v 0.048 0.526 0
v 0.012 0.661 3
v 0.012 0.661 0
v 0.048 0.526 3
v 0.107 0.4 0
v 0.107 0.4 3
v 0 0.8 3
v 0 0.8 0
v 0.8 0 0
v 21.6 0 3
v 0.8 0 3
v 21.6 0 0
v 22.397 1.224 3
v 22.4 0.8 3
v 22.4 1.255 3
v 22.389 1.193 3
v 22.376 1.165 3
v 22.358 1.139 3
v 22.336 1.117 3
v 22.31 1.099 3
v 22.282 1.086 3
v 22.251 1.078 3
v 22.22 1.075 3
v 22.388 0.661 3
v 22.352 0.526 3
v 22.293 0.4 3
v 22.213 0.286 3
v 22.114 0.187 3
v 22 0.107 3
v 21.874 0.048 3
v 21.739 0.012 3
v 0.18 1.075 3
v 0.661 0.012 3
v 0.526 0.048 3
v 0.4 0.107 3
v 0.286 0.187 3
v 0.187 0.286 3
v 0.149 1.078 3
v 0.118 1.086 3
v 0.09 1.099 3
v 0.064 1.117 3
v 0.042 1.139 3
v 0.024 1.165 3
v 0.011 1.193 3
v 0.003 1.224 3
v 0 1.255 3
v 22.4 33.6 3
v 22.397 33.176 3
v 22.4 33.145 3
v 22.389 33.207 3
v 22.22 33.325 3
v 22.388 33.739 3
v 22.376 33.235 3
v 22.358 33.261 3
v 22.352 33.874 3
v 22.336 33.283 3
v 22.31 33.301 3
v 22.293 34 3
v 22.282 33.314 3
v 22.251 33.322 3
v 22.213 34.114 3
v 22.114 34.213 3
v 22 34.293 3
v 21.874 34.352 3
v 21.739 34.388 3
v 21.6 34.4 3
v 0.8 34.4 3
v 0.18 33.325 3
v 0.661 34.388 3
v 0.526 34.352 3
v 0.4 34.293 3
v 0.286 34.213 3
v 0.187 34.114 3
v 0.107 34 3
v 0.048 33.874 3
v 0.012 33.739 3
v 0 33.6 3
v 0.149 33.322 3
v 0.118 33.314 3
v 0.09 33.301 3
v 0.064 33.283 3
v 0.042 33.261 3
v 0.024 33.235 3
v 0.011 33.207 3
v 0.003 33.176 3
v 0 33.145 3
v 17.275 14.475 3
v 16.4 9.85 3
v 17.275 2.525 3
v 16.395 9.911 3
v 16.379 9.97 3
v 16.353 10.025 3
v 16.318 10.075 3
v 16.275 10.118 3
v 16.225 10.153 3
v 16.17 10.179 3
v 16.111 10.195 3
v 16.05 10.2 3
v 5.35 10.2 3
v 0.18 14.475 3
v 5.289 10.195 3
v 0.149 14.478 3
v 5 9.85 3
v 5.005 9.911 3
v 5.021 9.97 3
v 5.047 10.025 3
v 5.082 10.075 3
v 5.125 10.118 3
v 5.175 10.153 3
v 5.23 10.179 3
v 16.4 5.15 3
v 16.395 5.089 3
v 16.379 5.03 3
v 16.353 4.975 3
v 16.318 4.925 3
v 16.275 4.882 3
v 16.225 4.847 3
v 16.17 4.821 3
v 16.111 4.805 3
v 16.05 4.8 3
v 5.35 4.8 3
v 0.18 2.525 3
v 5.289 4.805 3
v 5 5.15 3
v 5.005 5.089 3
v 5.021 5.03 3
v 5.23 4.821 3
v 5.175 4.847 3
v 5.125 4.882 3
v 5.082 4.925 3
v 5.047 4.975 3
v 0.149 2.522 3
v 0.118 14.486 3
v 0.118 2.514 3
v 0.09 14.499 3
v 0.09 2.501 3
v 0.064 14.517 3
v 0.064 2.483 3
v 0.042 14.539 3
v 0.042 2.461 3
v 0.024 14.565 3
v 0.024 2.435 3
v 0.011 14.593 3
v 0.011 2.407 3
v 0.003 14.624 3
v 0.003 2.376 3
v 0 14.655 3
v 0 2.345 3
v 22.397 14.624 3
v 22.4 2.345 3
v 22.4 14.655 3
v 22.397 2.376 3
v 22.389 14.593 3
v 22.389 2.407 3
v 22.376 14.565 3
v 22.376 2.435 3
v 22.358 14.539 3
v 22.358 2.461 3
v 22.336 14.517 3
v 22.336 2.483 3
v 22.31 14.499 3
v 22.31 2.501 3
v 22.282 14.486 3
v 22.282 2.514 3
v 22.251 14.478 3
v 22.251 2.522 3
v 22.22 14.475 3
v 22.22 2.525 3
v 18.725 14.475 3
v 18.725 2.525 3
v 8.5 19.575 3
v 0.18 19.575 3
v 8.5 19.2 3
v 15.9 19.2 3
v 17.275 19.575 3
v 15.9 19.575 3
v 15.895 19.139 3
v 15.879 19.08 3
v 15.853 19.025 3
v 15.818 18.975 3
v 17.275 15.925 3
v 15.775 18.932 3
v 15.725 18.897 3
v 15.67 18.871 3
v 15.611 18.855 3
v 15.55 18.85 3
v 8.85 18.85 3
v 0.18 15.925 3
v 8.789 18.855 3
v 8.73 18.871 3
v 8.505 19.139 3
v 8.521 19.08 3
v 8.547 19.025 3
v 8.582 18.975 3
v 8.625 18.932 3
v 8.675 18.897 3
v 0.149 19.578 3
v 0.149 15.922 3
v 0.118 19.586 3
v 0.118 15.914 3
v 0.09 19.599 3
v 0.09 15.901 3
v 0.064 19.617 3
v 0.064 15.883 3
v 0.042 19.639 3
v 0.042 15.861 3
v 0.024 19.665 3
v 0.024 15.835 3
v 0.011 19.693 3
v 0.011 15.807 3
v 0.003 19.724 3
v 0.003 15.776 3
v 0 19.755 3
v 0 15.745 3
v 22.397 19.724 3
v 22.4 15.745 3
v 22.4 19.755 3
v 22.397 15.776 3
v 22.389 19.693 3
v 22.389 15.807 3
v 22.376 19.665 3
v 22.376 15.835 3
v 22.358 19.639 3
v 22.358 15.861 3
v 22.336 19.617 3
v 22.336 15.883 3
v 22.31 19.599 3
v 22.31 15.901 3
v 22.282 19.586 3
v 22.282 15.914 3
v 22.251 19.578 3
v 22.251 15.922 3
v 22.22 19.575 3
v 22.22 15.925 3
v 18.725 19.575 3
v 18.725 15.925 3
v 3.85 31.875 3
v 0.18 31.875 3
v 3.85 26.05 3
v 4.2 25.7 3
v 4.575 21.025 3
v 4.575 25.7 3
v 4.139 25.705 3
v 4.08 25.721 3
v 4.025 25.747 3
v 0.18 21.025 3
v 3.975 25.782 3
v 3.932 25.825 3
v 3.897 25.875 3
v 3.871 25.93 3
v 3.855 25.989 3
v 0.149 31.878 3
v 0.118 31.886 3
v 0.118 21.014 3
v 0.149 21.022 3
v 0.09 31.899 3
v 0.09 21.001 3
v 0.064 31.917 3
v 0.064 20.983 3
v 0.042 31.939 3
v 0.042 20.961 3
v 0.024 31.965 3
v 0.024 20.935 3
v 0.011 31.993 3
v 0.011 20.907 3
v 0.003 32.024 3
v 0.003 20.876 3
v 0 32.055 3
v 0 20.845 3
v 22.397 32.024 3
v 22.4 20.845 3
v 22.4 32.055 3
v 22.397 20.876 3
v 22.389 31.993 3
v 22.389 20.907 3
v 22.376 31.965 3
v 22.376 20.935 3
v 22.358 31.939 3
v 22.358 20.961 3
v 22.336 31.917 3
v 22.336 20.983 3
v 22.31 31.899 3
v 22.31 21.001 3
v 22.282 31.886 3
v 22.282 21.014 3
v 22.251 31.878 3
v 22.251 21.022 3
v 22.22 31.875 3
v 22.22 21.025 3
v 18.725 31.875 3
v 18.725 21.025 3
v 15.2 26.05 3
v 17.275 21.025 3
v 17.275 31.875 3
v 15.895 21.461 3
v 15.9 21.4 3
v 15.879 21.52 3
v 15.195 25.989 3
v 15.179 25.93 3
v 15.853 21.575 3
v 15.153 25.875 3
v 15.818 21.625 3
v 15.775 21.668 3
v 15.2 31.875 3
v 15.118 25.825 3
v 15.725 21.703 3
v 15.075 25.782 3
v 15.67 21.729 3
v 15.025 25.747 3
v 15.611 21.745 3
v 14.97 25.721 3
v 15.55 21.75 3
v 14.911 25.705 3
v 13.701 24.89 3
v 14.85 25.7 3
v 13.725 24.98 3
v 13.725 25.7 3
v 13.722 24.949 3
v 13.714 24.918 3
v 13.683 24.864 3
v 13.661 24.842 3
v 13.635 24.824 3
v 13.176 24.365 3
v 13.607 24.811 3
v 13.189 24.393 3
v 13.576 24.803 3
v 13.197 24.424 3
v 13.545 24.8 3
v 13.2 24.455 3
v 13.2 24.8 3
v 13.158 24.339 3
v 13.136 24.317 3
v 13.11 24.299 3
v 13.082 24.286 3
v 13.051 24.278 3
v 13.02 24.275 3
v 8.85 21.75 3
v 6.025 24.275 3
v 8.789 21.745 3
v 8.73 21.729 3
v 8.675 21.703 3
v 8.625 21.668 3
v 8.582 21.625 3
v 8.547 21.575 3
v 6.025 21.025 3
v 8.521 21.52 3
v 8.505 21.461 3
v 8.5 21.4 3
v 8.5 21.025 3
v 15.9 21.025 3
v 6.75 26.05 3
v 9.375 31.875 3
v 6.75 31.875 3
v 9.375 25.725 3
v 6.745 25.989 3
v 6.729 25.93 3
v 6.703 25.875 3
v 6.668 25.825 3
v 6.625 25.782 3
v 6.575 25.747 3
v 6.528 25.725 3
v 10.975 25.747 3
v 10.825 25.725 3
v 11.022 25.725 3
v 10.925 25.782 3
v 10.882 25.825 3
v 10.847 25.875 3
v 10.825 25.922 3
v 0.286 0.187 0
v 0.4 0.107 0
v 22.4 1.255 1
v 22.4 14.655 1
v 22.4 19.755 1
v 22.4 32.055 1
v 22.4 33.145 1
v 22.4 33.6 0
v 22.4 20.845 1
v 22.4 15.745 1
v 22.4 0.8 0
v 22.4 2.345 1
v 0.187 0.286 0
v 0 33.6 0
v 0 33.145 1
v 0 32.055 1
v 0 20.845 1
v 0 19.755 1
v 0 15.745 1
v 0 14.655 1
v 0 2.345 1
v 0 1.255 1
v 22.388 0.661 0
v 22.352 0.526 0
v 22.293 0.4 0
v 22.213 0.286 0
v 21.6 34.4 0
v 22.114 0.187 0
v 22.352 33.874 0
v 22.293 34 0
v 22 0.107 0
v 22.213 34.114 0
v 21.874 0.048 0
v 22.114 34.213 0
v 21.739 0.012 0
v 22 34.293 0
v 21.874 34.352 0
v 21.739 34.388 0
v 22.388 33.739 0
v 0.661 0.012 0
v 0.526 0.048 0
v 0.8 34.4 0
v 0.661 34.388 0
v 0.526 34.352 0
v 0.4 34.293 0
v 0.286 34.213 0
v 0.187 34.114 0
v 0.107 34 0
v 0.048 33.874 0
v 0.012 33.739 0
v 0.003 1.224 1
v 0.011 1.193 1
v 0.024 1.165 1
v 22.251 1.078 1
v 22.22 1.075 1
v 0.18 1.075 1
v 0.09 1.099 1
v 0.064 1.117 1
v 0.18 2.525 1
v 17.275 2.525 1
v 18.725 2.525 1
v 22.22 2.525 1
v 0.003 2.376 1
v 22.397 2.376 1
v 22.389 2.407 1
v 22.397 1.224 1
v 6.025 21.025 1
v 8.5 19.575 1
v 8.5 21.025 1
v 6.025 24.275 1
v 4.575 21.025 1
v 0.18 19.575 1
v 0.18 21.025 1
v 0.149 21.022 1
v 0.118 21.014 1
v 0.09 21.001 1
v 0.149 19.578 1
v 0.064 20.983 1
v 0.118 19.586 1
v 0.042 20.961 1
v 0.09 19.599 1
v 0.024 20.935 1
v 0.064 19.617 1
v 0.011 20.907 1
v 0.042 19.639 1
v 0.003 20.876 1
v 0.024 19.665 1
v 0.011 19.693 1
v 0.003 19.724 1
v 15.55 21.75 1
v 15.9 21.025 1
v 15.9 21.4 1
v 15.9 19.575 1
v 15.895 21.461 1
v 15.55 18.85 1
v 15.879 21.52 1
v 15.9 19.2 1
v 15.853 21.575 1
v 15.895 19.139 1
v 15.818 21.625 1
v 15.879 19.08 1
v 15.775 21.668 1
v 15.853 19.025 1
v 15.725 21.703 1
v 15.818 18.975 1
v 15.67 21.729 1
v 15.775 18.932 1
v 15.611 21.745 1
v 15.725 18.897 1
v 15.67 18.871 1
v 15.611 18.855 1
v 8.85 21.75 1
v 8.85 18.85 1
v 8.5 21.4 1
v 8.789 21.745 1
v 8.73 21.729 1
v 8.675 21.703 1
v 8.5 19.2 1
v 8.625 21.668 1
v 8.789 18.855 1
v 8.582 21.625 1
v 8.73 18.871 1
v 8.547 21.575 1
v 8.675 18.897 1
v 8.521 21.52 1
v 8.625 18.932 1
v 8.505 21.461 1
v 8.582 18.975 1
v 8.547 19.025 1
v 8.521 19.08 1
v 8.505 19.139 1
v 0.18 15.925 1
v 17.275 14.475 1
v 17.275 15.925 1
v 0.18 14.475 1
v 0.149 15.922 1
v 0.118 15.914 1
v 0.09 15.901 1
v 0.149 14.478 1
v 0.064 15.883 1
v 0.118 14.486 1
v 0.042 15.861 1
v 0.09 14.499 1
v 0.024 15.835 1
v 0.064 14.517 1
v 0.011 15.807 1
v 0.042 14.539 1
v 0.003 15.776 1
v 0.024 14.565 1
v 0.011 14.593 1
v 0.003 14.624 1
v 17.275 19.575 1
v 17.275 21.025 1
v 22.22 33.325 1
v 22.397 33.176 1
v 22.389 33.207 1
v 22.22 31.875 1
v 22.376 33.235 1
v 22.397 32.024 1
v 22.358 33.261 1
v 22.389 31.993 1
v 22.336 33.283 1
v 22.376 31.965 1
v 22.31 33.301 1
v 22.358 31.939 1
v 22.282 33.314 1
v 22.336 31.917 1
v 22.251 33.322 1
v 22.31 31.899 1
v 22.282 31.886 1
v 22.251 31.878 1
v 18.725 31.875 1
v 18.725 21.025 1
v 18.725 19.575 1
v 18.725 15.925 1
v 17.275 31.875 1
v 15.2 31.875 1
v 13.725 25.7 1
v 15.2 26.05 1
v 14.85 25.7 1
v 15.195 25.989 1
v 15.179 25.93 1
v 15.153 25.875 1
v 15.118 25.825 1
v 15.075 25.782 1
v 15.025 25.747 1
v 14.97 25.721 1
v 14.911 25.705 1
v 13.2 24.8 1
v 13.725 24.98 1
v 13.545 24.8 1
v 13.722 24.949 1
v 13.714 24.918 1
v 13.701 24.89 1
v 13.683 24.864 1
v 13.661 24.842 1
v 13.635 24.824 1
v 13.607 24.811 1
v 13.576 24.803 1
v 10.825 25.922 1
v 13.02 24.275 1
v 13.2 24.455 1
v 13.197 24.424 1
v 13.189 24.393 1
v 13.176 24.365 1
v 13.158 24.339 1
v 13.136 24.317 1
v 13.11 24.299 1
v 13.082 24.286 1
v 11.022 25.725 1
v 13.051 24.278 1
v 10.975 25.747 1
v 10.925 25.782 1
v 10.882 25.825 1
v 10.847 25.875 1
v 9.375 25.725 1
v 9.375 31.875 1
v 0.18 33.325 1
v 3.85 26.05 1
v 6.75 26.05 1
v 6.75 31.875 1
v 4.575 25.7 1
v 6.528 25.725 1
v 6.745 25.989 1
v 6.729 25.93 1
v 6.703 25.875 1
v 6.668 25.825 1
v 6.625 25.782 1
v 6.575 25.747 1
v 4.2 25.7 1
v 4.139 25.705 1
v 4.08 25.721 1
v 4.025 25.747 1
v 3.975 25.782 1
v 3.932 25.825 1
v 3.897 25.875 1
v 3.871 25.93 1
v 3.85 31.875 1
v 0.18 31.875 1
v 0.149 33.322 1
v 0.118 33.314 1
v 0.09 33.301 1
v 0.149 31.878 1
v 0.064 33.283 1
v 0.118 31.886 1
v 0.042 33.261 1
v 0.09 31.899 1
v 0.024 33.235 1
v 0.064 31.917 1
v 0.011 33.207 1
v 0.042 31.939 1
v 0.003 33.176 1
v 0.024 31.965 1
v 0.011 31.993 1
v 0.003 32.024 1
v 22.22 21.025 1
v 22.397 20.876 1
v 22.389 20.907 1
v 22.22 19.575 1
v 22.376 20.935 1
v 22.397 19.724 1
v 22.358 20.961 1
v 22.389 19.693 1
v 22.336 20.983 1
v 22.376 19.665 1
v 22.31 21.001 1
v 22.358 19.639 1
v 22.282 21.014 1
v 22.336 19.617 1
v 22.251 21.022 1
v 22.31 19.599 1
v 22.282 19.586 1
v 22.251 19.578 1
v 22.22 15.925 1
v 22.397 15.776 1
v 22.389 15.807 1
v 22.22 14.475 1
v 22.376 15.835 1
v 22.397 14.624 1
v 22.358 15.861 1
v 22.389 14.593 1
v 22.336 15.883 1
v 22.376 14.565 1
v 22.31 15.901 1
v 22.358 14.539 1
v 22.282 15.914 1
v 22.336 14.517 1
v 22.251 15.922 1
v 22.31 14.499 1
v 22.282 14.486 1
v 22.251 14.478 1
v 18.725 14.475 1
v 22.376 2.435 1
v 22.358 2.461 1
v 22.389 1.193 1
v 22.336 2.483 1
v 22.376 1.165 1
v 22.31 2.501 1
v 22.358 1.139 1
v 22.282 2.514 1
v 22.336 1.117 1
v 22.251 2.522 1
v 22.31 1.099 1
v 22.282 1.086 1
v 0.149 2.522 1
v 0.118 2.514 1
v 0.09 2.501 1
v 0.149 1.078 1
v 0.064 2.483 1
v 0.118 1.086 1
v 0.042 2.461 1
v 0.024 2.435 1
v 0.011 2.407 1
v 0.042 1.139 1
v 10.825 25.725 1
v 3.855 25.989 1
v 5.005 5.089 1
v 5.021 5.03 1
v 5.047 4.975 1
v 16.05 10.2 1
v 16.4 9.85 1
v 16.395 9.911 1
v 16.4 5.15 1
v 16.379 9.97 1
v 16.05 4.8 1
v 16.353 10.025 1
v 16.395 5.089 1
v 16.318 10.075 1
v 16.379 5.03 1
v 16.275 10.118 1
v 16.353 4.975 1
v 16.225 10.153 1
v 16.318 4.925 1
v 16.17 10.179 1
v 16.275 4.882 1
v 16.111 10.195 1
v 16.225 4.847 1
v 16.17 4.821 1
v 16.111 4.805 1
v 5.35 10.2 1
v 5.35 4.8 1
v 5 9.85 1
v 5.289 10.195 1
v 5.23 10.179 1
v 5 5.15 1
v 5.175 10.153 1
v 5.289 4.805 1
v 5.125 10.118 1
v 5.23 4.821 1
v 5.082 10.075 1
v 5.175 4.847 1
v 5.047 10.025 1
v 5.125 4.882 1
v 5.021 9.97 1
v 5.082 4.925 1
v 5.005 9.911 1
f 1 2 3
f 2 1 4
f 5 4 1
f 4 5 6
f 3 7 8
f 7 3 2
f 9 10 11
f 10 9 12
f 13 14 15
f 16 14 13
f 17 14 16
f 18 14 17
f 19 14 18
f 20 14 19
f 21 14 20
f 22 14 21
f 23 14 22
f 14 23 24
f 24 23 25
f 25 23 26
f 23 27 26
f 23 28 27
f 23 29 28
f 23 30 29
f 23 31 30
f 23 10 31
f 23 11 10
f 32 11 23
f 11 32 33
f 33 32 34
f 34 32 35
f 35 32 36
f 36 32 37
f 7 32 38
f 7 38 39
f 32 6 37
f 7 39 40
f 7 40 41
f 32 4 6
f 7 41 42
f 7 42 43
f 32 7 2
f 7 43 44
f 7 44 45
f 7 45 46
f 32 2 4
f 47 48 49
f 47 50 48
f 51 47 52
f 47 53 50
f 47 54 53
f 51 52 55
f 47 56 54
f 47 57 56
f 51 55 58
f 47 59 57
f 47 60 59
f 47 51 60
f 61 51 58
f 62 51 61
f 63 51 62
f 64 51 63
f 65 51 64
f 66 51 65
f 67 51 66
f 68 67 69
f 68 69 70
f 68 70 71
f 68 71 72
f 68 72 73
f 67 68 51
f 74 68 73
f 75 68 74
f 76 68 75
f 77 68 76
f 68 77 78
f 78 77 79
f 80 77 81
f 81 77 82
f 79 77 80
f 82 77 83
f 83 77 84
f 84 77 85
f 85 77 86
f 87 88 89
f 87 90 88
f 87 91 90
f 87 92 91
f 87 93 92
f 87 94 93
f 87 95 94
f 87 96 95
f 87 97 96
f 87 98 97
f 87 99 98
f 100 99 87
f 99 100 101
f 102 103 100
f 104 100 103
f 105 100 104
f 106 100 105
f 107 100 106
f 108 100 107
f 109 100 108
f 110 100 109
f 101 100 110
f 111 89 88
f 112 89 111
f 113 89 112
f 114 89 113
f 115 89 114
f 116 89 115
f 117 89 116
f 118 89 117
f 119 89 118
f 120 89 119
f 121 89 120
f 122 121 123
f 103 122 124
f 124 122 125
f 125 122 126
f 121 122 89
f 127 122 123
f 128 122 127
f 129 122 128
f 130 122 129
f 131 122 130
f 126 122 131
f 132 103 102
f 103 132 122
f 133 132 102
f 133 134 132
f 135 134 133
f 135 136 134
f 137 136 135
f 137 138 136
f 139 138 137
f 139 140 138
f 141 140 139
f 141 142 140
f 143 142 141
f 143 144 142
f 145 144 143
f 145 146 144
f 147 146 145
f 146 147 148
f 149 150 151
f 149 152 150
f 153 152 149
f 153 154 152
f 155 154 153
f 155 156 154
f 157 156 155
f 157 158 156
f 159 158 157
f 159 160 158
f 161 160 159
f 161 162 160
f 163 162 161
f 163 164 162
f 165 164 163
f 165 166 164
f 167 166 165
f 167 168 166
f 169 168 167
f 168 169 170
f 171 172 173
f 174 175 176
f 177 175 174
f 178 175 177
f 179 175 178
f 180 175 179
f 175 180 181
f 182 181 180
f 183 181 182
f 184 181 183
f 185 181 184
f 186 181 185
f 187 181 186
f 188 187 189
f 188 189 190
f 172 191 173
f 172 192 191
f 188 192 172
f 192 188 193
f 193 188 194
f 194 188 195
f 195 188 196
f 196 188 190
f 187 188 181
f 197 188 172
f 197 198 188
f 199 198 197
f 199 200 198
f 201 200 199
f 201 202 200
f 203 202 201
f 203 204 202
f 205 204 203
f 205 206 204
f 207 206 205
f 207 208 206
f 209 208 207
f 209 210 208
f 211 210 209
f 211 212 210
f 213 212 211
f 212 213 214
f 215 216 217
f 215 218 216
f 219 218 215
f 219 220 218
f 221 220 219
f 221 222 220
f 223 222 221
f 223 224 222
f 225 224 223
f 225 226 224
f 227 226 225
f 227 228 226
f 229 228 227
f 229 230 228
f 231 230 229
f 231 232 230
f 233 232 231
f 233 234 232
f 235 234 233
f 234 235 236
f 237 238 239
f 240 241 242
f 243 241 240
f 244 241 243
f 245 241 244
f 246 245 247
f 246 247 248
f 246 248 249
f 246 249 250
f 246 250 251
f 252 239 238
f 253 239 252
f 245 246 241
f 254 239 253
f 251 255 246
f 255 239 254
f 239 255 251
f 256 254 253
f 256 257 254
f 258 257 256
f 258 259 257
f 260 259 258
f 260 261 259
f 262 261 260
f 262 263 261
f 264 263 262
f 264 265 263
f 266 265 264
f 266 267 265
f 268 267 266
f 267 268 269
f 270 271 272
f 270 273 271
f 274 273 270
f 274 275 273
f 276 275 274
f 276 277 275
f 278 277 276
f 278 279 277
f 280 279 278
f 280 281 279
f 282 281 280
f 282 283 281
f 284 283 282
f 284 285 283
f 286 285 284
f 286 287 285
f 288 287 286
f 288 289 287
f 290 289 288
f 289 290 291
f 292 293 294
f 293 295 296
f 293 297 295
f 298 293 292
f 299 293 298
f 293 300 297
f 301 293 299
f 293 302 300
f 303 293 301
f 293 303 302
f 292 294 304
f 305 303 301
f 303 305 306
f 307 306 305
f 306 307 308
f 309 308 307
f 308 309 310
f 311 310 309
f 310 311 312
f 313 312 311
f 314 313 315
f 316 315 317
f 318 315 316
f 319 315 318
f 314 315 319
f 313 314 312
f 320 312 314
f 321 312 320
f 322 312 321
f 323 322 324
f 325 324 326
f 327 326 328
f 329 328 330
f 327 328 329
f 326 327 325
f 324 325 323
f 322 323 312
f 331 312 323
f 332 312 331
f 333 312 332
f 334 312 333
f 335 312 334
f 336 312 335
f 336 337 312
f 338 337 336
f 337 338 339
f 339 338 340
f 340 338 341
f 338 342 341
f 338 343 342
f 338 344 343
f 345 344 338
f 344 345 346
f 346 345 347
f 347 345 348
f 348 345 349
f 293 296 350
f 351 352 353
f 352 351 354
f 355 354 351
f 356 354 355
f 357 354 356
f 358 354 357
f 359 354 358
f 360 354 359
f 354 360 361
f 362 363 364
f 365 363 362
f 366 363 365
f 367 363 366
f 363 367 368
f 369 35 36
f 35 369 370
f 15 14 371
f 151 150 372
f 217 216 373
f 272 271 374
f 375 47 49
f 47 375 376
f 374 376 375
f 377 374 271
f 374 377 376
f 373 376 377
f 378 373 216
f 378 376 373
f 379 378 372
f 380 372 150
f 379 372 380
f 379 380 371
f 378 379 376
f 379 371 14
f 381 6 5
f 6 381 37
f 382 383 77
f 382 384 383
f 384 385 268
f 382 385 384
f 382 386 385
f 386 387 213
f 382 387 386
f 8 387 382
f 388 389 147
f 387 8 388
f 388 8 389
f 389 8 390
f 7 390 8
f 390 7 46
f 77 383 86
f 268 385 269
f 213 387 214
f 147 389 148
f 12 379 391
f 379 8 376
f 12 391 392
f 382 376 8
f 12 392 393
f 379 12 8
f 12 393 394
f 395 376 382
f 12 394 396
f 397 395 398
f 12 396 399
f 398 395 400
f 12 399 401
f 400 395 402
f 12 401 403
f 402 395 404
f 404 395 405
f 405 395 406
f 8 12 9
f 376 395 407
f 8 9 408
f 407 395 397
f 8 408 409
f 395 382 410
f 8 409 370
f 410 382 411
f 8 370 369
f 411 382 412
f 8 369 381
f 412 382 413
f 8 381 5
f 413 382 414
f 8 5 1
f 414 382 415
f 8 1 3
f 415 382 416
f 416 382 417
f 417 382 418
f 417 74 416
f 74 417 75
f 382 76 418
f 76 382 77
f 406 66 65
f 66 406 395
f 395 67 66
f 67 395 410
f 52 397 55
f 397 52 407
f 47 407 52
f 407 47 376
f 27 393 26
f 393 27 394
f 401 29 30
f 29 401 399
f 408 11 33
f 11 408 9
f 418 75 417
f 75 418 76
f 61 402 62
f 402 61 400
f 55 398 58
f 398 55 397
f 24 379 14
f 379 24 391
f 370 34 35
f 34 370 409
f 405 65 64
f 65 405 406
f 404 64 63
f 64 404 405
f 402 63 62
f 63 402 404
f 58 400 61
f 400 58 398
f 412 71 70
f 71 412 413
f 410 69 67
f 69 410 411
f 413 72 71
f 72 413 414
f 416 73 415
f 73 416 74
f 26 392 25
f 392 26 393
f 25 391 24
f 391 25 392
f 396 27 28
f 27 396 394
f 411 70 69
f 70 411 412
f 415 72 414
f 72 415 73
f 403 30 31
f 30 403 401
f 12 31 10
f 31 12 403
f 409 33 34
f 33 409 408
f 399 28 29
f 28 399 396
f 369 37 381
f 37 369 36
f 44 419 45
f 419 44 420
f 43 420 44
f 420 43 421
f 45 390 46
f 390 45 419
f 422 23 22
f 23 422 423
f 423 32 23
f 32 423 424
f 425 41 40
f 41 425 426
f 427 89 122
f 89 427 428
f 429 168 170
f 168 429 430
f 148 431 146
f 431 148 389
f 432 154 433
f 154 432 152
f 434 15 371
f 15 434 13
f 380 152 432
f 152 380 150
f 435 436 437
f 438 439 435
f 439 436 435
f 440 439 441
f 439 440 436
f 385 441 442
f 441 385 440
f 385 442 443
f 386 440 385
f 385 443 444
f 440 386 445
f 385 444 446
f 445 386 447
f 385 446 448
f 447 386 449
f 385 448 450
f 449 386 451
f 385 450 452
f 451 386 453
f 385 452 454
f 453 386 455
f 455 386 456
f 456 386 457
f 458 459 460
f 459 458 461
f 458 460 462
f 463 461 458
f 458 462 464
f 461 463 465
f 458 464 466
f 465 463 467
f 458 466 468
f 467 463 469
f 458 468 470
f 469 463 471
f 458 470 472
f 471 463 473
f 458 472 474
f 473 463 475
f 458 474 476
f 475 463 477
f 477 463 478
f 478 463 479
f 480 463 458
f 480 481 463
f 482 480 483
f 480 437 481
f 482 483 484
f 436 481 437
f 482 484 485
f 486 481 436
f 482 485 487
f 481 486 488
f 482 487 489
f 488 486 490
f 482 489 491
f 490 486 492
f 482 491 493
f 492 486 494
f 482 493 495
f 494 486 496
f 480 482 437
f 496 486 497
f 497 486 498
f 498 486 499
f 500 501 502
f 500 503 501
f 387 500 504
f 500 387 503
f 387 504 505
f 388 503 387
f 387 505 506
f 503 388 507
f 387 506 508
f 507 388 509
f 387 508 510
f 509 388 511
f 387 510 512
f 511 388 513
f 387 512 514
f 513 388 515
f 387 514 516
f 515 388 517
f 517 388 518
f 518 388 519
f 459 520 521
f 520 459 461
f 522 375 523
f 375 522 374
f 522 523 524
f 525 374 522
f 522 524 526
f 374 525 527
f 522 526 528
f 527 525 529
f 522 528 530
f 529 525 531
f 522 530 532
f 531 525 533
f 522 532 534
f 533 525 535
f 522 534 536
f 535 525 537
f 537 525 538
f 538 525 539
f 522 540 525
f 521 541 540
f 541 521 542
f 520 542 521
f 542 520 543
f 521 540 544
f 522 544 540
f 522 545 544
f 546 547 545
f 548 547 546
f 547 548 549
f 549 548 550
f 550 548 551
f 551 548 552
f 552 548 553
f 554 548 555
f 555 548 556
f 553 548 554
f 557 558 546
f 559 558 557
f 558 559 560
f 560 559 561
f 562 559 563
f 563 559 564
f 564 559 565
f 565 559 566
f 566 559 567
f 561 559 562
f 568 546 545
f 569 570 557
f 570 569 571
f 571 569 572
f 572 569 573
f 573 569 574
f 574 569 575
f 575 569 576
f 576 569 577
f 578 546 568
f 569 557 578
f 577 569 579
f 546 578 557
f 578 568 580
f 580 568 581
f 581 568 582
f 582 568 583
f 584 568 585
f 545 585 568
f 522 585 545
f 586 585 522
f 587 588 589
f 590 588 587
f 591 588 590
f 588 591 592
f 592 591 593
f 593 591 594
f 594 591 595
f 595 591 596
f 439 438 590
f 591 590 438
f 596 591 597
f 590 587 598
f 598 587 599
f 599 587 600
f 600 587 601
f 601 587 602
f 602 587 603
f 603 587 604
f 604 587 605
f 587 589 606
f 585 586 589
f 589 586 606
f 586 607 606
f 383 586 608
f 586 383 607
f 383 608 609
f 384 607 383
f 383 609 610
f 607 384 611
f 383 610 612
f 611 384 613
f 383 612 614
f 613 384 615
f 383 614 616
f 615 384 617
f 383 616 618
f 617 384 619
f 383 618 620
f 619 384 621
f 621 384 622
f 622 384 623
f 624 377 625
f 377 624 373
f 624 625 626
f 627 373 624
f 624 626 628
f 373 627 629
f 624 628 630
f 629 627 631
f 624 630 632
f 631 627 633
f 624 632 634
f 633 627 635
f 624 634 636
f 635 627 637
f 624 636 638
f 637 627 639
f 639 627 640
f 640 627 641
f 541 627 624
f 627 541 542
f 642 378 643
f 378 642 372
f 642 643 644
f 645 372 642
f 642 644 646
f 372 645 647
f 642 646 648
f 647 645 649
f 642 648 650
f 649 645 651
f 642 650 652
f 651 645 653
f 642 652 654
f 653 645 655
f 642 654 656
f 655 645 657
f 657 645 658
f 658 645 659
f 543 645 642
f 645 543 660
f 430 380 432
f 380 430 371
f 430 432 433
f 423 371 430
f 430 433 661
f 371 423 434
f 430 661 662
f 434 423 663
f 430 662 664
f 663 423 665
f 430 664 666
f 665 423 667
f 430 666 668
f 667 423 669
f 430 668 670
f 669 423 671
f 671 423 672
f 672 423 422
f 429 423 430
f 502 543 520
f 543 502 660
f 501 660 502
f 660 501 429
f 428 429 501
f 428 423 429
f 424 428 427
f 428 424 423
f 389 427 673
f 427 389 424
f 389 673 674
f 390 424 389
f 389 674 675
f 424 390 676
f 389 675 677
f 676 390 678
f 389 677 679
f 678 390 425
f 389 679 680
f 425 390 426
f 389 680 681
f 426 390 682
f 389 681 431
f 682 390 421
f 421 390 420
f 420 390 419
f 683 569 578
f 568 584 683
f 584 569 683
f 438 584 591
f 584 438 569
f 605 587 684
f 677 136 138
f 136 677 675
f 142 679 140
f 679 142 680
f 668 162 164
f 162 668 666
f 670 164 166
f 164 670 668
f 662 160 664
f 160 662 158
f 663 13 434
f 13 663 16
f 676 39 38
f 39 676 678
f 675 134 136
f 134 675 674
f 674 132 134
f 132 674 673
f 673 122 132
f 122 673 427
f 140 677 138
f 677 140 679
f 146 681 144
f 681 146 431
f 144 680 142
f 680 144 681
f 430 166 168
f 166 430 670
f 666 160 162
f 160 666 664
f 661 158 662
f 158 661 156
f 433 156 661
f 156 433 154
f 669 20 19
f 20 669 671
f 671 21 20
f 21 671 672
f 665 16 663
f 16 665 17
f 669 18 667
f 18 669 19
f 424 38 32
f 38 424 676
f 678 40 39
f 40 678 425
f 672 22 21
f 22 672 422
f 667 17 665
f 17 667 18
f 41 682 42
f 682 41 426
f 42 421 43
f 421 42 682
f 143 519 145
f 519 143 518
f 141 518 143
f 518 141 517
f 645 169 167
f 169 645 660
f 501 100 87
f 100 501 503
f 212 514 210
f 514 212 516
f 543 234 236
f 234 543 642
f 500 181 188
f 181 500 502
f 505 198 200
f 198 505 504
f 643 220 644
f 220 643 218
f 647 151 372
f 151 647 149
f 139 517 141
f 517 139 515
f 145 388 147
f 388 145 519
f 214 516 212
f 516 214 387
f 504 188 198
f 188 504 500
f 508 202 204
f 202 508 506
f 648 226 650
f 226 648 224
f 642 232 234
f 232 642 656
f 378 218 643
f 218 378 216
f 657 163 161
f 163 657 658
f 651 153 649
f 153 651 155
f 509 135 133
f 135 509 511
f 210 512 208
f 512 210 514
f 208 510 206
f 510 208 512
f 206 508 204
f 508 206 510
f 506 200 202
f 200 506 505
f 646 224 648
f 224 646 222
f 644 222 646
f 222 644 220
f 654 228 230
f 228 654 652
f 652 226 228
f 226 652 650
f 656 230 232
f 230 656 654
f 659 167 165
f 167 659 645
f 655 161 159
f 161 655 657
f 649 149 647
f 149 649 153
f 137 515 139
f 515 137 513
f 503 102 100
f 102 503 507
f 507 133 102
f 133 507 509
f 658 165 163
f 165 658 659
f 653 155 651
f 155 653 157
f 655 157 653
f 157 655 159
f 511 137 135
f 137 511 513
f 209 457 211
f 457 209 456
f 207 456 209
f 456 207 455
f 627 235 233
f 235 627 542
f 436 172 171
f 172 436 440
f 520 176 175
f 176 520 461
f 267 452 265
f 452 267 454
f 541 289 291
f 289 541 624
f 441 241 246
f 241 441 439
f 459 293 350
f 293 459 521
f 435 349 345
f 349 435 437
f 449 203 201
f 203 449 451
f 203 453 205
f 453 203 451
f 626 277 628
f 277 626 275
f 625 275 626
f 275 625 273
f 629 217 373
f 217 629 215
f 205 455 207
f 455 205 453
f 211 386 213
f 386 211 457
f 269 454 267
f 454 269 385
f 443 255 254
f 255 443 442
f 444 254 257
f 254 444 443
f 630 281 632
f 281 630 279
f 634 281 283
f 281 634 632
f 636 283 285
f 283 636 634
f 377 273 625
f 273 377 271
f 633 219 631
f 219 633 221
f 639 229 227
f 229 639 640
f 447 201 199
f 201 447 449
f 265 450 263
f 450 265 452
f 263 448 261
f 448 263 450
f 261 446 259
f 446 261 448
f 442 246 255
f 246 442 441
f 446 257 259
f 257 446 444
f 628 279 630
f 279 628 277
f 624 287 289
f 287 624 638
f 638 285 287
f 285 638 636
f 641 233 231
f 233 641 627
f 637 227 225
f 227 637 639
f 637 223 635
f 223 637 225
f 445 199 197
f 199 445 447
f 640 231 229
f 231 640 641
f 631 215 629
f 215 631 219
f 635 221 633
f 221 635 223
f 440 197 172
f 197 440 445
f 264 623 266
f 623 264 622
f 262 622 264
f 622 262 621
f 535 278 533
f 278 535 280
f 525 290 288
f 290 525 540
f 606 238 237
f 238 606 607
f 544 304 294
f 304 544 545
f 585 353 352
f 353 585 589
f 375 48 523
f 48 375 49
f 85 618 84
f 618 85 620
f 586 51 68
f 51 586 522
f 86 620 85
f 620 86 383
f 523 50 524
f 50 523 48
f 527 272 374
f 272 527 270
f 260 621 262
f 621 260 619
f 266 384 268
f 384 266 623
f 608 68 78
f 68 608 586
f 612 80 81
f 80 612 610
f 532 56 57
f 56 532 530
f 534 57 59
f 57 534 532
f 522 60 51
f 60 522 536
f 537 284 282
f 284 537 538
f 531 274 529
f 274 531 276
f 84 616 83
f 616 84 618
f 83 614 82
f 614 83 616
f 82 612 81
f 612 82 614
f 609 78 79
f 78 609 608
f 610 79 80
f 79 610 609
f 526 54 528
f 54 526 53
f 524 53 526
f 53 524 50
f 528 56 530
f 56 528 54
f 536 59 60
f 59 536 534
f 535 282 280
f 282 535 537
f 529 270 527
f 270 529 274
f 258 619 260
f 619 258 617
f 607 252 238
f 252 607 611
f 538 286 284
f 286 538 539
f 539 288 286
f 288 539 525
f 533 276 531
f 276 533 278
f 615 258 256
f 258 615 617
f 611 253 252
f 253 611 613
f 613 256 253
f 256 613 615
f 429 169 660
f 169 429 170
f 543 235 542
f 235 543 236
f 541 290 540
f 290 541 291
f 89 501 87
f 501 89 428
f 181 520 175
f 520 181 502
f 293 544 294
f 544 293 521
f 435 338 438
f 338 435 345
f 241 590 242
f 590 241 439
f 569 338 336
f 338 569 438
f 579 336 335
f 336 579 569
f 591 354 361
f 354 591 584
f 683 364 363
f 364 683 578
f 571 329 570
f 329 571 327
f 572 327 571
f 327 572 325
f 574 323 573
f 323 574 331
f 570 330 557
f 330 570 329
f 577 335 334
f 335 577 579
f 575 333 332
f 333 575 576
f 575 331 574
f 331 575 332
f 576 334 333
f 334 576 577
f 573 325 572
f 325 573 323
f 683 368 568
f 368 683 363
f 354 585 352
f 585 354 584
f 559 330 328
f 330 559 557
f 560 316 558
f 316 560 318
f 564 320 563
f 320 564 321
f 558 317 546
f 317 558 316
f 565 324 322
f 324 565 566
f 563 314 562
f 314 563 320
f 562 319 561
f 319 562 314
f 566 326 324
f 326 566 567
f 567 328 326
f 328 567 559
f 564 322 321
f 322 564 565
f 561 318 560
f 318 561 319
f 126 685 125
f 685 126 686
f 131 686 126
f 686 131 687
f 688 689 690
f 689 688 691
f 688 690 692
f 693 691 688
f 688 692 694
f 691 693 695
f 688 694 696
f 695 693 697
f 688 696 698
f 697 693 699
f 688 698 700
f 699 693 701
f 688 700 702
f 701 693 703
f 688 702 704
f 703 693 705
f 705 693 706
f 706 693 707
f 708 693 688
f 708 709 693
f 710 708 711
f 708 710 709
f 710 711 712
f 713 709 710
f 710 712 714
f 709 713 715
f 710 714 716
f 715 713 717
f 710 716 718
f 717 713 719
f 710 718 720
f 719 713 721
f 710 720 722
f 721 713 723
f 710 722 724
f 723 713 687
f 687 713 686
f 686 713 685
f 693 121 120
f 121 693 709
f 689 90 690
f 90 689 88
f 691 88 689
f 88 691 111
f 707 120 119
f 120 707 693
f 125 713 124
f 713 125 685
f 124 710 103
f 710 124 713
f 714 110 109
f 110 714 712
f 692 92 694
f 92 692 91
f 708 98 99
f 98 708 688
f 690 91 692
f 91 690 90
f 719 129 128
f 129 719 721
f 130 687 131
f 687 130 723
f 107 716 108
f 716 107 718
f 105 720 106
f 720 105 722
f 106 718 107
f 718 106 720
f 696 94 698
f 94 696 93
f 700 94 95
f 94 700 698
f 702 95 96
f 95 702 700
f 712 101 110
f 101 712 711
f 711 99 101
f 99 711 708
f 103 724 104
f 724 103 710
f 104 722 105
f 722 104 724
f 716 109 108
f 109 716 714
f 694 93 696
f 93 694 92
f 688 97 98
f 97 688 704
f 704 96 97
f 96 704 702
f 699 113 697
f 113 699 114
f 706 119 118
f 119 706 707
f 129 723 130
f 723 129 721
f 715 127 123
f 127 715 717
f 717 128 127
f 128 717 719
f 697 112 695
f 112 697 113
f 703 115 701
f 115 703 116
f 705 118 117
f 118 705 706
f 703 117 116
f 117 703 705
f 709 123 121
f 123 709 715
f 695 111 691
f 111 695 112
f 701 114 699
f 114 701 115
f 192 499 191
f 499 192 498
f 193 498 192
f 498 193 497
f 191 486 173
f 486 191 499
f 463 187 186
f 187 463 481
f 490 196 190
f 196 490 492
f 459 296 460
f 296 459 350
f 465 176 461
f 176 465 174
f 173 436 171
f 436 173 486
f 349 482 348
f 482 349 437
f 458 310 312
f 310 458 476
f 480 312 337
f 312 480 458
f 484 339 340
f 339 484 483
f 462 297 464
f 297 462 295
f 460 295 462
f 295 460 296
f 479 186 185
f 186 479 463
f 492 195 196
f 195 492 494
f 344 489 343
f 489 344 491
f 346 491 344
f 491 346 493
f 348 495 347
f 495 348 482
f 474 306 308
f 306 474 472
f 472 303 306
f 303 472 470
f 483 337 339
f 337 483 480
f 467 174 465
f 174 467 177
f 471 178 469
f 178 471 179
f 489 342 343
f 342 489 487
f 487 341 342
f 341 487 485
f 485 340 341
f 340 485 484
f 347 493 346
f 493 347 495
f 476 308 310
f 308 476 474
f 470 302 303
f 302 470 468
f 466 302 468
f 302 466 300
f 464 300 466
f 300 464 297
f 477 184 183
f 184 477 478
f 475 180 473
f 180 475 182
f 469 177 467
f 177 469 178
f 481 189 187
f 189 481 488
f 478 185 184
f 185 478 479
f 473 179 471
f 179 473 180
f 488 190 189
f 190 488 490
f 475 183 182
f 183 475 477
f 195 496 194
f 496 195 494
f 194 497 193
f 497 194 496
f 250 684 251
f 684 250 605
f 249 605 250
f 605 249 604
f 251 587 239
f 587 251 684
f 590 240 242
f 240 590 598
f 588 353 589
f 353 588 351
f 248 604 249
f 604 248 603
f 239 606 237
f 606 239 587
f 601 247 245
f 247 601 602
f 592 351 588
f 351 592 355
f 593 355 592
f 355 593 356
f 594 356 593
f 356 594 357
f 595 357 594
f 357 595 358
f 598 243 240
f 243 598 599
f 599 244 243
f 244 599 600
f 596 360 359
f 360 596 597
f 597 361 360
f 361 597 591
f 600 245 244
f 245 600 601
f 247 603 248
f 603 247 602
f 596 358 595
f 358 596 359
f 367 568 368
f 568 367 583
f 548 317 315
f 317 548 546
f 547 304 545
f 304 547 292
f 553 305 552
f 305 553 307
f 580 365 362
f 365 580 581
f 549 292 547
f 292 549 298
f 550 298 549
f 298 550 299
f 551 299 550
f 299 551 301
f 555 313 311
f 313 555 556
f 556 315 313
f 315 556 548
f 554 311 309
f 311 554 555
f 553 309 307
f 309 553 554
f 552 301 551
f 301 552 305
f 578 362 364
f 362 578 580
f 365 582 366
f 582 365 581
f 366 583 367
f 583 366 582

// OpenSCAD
$fn = 36;

// Compact recessed carrier for ESP32 D1 Mini analog-feedback servo wiring.
// LED section intentionally omitted.

plate_x = 22.4;
plate_y = 34.4;
plate_z = 3;
recess_d = 2;
corner_r = 0.8;
channel_w = 1.45;
join_overlap = 0.2;
fit_clearance = 0.4;

// User-supplied component body dimensions, in board orientation.
r20_w = 2.5;
r20_h = 7;
r10_w = 7;
r10_h = 2.5;
ceramic_w = 4;
ceramic_h = 7;
electrolytic_w = 11;
electrolytic_h = 5;

module rounded_rect_2d(x, y, r) {
  hull() {
    translate([r, r]) circle(r = r);
    translate([x - r, r]) circle(r = r);
    translate([r, y - r]) circle(r = r);
    translate([x - r, y - r]) circle(r = r);
  }
}

module rounded_cut(x, y, z, r) {
  linear_extrude(height = z)
    rounded_rect_2d(x, y, min(r, x / 2, y / 2));
}

module recess_rect(x, y, sx, sy, r = 0) {
  translate([x, y, plate_z - recess_d])
    if (r > 0) {
      rounded_cut(sx, sy, recess_d + 0.04, r);
    } else {
      cube([sx, sy, recess_d + 0.04]);
    }
}

module channel_h(x1, x2, y) {
  recess_rect(min(x1, x2), y - channel_w / 2, abs(x2 - x1), channel_w, 0.18);
}

module channel_v(x, y1, y2) {
  recess_rect(x - channel_w / 2, min(y1, y2), channel_w, abs(y2 - y1), 0.18);
}

module pocket(cx, cy, sx, sy, r = 0.35) {
  recess_rect(
    cx - (sx + fit_clearance) / 2,
    cy - (sy + fit_clearance) / 2,
    sx + fit_clearance,
    sy + fit_clearance,
    r
  );
}

difference() {
  rounded_cut(plate_x, plate_y, plate_z, corner_r);

  // Pass-through exits: ESP side at left, servo side at right.
  channel_h(0, plate_x, 1.8);   // 5V
  channel_h(0, plate_x, 15.2);  // PWM
  channel_h(0, plate_x, 20.3);  // feedback / ADC through 10k
  channel_h(0, plate_x, 32.6);  // GND

  // Shared side channel for 5V/GND/bulk-cap access.
  channel_v(18.0, 1.8 - join_overlap, 32.6 + join_overlap);

  // ADC-side shunt branch. The 20k and 100nF both connect here, then to GND.
  channel_v(5.3, 20.3 - join_overlap, 32.6 + join_overlap);
  channel_h(5.3 - join_overlap, 13.0 + join_overlap, 25.0);
  channel_v(10.1, 25.0 - join_overlap, 32.6 + join_overlap);
  channel_v(13.0, 25.0 - join_overlap, 32.6 + join_overlap);

  // Component pockets.
  pocket(10.7, 7.5, electrolytic_w, electrolytic_h, 0.35);
  pocket(12.2, 20.3, r10_w, r10_h, 0.35);
  pocket(5.3, 29.4, r20_w, r20_h, 0.35);
  pocket(13.0, 29.4, ceramic_w, ceramic_h, 0.35);
}
